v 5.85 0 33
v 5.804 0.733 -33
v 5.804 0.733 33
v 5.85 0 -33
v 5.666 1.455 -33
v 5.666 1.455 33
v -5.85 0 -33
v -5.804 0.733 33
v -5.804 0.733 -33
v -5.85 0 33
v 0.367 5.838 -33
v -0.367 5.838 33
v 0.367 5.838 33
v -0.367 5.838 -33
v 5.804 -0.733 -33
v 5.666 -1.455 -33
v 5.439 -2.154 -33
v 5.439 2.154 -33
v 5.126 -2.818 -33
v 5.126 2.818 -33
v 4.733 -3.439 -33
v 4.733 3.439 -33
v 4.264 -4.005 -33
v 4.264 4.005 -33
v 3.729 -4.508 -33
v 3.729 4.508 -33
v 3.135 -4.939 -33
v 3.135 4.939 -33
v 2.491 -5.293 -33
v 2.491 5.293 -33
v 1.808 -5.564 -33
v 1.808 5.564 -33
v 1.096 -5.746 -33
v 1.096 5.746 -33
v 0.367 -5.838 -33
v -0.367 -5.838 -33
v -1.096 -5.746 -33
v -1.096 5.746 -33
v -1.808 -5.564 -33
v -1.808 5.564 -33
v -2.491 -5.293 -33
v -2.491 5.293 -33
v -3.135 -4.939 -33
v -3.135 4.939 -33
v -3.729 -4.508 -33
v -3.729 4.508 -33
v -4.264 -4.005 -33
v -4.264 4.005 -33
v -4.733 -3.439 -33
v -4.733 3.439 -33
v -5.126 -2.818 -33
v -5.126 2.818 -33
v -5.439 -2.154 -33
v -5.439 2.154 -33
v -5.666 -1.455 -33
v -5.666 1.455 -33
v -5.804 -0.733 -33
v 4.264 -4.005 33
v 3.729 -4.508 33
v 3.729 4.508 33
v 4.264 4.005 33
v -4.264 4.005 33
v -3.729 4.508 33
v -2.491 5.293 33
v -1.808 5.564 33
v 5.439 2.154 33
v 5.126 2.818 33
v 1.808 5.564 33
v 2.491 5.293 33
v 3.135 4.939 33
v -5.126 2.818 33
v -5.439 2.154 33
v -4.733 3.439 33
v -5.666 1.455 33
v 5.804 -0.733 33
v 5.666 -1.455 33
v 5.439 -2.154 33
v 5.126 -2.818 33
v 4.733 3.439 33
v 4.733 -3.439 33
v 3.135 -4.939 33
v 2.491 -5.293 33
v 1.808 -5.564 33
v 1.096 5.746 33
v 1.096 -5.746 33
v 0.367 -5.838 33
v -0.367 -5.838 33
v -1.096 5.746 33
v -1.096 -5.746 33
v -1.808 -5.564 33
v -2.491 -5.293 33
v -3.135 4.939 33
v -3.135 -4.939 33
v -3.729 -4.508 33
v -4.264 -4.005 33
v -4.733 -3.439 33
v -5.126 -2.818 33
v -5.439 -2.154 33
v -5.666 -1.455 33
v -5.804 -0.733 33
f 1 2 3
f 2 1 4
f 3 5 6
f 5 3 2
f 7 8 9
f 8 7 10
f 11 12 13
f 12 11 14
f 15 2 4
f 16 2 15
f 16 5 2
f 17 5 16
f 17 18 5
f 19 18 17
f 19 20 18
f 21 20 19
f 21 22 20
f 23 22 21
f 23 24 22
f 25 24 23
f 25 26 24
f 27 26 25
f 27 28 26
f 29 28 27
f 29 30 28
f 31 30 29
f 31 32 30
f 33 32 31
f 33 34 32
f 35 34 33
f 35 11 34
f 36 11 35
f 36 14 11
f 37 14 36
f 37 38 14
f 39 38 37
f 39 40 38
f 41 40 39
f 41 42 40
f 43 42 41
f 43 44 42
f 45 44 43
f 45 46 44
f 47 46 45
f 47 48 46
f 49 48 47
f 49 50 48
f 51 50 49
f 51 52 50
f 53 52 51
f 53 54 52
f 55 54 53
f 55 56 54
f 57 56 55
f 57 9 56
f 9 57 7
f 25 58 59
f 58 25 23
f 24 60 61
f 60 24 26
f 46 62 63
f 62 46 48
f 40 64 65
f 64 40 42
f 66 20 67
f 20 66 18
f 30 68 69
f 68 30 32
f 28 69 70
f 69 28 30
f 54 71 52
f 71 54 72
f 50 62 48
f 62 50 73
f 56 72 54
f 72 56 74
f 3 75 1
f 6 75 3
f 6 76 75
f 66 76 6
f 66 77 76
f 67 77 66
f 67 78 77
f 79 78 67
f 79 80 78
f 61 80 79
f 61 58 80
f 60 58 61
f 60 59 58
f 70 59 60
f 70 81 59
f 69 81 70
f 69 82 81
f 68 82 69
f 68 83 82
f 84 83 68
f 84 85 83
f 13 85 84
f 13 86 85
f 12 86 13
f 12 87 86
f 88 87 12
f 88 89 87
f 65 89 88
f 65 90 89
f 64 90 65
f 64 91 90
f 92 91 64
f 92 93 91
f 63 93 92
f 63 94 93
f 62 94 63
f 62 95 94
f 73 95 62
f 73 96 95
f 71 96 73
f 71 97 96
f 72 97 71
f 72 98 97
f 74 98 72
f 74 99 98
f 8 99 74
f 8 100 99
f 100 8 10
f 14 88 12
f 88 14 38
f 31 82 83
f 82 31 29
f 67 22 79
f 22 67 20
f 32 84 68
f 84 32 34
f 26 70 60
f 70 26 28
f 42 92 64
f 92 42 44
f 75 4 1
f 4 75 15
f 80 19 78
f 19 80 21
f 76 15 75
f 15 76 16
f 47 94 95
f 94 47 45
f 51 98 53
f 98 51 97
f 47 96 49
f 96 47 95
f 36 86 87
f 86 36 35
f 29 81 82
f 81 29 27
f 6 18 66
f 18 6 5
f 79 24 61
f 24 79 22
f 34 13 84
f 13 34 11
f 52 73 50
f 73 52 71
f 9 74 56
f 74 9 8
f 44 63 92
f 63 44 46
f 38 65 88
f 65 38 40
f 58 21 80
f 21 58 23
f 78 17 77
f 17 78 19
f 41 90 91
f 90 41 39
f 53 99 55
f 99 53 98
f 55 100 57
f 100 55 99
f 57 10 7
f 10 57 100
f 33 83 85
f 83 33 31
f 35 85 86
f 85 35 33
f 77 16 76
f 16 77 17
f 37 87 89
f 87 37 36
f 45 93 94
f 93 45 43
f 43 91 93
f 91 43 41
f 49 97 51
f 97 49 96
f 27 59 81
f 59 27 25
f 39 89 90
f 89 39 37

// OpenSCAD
$fn = 50;


difference() {
	union() {
		translate(v = [0, 0, -33.0000000000]) {
			cylinder(h = 66, r = 5.8500000000);
		}
	}
	union() {
		translate(v = [0, 0, -100.0000000000]) {
			cylinder(h = 200, r = 0);
		}
	}
}
